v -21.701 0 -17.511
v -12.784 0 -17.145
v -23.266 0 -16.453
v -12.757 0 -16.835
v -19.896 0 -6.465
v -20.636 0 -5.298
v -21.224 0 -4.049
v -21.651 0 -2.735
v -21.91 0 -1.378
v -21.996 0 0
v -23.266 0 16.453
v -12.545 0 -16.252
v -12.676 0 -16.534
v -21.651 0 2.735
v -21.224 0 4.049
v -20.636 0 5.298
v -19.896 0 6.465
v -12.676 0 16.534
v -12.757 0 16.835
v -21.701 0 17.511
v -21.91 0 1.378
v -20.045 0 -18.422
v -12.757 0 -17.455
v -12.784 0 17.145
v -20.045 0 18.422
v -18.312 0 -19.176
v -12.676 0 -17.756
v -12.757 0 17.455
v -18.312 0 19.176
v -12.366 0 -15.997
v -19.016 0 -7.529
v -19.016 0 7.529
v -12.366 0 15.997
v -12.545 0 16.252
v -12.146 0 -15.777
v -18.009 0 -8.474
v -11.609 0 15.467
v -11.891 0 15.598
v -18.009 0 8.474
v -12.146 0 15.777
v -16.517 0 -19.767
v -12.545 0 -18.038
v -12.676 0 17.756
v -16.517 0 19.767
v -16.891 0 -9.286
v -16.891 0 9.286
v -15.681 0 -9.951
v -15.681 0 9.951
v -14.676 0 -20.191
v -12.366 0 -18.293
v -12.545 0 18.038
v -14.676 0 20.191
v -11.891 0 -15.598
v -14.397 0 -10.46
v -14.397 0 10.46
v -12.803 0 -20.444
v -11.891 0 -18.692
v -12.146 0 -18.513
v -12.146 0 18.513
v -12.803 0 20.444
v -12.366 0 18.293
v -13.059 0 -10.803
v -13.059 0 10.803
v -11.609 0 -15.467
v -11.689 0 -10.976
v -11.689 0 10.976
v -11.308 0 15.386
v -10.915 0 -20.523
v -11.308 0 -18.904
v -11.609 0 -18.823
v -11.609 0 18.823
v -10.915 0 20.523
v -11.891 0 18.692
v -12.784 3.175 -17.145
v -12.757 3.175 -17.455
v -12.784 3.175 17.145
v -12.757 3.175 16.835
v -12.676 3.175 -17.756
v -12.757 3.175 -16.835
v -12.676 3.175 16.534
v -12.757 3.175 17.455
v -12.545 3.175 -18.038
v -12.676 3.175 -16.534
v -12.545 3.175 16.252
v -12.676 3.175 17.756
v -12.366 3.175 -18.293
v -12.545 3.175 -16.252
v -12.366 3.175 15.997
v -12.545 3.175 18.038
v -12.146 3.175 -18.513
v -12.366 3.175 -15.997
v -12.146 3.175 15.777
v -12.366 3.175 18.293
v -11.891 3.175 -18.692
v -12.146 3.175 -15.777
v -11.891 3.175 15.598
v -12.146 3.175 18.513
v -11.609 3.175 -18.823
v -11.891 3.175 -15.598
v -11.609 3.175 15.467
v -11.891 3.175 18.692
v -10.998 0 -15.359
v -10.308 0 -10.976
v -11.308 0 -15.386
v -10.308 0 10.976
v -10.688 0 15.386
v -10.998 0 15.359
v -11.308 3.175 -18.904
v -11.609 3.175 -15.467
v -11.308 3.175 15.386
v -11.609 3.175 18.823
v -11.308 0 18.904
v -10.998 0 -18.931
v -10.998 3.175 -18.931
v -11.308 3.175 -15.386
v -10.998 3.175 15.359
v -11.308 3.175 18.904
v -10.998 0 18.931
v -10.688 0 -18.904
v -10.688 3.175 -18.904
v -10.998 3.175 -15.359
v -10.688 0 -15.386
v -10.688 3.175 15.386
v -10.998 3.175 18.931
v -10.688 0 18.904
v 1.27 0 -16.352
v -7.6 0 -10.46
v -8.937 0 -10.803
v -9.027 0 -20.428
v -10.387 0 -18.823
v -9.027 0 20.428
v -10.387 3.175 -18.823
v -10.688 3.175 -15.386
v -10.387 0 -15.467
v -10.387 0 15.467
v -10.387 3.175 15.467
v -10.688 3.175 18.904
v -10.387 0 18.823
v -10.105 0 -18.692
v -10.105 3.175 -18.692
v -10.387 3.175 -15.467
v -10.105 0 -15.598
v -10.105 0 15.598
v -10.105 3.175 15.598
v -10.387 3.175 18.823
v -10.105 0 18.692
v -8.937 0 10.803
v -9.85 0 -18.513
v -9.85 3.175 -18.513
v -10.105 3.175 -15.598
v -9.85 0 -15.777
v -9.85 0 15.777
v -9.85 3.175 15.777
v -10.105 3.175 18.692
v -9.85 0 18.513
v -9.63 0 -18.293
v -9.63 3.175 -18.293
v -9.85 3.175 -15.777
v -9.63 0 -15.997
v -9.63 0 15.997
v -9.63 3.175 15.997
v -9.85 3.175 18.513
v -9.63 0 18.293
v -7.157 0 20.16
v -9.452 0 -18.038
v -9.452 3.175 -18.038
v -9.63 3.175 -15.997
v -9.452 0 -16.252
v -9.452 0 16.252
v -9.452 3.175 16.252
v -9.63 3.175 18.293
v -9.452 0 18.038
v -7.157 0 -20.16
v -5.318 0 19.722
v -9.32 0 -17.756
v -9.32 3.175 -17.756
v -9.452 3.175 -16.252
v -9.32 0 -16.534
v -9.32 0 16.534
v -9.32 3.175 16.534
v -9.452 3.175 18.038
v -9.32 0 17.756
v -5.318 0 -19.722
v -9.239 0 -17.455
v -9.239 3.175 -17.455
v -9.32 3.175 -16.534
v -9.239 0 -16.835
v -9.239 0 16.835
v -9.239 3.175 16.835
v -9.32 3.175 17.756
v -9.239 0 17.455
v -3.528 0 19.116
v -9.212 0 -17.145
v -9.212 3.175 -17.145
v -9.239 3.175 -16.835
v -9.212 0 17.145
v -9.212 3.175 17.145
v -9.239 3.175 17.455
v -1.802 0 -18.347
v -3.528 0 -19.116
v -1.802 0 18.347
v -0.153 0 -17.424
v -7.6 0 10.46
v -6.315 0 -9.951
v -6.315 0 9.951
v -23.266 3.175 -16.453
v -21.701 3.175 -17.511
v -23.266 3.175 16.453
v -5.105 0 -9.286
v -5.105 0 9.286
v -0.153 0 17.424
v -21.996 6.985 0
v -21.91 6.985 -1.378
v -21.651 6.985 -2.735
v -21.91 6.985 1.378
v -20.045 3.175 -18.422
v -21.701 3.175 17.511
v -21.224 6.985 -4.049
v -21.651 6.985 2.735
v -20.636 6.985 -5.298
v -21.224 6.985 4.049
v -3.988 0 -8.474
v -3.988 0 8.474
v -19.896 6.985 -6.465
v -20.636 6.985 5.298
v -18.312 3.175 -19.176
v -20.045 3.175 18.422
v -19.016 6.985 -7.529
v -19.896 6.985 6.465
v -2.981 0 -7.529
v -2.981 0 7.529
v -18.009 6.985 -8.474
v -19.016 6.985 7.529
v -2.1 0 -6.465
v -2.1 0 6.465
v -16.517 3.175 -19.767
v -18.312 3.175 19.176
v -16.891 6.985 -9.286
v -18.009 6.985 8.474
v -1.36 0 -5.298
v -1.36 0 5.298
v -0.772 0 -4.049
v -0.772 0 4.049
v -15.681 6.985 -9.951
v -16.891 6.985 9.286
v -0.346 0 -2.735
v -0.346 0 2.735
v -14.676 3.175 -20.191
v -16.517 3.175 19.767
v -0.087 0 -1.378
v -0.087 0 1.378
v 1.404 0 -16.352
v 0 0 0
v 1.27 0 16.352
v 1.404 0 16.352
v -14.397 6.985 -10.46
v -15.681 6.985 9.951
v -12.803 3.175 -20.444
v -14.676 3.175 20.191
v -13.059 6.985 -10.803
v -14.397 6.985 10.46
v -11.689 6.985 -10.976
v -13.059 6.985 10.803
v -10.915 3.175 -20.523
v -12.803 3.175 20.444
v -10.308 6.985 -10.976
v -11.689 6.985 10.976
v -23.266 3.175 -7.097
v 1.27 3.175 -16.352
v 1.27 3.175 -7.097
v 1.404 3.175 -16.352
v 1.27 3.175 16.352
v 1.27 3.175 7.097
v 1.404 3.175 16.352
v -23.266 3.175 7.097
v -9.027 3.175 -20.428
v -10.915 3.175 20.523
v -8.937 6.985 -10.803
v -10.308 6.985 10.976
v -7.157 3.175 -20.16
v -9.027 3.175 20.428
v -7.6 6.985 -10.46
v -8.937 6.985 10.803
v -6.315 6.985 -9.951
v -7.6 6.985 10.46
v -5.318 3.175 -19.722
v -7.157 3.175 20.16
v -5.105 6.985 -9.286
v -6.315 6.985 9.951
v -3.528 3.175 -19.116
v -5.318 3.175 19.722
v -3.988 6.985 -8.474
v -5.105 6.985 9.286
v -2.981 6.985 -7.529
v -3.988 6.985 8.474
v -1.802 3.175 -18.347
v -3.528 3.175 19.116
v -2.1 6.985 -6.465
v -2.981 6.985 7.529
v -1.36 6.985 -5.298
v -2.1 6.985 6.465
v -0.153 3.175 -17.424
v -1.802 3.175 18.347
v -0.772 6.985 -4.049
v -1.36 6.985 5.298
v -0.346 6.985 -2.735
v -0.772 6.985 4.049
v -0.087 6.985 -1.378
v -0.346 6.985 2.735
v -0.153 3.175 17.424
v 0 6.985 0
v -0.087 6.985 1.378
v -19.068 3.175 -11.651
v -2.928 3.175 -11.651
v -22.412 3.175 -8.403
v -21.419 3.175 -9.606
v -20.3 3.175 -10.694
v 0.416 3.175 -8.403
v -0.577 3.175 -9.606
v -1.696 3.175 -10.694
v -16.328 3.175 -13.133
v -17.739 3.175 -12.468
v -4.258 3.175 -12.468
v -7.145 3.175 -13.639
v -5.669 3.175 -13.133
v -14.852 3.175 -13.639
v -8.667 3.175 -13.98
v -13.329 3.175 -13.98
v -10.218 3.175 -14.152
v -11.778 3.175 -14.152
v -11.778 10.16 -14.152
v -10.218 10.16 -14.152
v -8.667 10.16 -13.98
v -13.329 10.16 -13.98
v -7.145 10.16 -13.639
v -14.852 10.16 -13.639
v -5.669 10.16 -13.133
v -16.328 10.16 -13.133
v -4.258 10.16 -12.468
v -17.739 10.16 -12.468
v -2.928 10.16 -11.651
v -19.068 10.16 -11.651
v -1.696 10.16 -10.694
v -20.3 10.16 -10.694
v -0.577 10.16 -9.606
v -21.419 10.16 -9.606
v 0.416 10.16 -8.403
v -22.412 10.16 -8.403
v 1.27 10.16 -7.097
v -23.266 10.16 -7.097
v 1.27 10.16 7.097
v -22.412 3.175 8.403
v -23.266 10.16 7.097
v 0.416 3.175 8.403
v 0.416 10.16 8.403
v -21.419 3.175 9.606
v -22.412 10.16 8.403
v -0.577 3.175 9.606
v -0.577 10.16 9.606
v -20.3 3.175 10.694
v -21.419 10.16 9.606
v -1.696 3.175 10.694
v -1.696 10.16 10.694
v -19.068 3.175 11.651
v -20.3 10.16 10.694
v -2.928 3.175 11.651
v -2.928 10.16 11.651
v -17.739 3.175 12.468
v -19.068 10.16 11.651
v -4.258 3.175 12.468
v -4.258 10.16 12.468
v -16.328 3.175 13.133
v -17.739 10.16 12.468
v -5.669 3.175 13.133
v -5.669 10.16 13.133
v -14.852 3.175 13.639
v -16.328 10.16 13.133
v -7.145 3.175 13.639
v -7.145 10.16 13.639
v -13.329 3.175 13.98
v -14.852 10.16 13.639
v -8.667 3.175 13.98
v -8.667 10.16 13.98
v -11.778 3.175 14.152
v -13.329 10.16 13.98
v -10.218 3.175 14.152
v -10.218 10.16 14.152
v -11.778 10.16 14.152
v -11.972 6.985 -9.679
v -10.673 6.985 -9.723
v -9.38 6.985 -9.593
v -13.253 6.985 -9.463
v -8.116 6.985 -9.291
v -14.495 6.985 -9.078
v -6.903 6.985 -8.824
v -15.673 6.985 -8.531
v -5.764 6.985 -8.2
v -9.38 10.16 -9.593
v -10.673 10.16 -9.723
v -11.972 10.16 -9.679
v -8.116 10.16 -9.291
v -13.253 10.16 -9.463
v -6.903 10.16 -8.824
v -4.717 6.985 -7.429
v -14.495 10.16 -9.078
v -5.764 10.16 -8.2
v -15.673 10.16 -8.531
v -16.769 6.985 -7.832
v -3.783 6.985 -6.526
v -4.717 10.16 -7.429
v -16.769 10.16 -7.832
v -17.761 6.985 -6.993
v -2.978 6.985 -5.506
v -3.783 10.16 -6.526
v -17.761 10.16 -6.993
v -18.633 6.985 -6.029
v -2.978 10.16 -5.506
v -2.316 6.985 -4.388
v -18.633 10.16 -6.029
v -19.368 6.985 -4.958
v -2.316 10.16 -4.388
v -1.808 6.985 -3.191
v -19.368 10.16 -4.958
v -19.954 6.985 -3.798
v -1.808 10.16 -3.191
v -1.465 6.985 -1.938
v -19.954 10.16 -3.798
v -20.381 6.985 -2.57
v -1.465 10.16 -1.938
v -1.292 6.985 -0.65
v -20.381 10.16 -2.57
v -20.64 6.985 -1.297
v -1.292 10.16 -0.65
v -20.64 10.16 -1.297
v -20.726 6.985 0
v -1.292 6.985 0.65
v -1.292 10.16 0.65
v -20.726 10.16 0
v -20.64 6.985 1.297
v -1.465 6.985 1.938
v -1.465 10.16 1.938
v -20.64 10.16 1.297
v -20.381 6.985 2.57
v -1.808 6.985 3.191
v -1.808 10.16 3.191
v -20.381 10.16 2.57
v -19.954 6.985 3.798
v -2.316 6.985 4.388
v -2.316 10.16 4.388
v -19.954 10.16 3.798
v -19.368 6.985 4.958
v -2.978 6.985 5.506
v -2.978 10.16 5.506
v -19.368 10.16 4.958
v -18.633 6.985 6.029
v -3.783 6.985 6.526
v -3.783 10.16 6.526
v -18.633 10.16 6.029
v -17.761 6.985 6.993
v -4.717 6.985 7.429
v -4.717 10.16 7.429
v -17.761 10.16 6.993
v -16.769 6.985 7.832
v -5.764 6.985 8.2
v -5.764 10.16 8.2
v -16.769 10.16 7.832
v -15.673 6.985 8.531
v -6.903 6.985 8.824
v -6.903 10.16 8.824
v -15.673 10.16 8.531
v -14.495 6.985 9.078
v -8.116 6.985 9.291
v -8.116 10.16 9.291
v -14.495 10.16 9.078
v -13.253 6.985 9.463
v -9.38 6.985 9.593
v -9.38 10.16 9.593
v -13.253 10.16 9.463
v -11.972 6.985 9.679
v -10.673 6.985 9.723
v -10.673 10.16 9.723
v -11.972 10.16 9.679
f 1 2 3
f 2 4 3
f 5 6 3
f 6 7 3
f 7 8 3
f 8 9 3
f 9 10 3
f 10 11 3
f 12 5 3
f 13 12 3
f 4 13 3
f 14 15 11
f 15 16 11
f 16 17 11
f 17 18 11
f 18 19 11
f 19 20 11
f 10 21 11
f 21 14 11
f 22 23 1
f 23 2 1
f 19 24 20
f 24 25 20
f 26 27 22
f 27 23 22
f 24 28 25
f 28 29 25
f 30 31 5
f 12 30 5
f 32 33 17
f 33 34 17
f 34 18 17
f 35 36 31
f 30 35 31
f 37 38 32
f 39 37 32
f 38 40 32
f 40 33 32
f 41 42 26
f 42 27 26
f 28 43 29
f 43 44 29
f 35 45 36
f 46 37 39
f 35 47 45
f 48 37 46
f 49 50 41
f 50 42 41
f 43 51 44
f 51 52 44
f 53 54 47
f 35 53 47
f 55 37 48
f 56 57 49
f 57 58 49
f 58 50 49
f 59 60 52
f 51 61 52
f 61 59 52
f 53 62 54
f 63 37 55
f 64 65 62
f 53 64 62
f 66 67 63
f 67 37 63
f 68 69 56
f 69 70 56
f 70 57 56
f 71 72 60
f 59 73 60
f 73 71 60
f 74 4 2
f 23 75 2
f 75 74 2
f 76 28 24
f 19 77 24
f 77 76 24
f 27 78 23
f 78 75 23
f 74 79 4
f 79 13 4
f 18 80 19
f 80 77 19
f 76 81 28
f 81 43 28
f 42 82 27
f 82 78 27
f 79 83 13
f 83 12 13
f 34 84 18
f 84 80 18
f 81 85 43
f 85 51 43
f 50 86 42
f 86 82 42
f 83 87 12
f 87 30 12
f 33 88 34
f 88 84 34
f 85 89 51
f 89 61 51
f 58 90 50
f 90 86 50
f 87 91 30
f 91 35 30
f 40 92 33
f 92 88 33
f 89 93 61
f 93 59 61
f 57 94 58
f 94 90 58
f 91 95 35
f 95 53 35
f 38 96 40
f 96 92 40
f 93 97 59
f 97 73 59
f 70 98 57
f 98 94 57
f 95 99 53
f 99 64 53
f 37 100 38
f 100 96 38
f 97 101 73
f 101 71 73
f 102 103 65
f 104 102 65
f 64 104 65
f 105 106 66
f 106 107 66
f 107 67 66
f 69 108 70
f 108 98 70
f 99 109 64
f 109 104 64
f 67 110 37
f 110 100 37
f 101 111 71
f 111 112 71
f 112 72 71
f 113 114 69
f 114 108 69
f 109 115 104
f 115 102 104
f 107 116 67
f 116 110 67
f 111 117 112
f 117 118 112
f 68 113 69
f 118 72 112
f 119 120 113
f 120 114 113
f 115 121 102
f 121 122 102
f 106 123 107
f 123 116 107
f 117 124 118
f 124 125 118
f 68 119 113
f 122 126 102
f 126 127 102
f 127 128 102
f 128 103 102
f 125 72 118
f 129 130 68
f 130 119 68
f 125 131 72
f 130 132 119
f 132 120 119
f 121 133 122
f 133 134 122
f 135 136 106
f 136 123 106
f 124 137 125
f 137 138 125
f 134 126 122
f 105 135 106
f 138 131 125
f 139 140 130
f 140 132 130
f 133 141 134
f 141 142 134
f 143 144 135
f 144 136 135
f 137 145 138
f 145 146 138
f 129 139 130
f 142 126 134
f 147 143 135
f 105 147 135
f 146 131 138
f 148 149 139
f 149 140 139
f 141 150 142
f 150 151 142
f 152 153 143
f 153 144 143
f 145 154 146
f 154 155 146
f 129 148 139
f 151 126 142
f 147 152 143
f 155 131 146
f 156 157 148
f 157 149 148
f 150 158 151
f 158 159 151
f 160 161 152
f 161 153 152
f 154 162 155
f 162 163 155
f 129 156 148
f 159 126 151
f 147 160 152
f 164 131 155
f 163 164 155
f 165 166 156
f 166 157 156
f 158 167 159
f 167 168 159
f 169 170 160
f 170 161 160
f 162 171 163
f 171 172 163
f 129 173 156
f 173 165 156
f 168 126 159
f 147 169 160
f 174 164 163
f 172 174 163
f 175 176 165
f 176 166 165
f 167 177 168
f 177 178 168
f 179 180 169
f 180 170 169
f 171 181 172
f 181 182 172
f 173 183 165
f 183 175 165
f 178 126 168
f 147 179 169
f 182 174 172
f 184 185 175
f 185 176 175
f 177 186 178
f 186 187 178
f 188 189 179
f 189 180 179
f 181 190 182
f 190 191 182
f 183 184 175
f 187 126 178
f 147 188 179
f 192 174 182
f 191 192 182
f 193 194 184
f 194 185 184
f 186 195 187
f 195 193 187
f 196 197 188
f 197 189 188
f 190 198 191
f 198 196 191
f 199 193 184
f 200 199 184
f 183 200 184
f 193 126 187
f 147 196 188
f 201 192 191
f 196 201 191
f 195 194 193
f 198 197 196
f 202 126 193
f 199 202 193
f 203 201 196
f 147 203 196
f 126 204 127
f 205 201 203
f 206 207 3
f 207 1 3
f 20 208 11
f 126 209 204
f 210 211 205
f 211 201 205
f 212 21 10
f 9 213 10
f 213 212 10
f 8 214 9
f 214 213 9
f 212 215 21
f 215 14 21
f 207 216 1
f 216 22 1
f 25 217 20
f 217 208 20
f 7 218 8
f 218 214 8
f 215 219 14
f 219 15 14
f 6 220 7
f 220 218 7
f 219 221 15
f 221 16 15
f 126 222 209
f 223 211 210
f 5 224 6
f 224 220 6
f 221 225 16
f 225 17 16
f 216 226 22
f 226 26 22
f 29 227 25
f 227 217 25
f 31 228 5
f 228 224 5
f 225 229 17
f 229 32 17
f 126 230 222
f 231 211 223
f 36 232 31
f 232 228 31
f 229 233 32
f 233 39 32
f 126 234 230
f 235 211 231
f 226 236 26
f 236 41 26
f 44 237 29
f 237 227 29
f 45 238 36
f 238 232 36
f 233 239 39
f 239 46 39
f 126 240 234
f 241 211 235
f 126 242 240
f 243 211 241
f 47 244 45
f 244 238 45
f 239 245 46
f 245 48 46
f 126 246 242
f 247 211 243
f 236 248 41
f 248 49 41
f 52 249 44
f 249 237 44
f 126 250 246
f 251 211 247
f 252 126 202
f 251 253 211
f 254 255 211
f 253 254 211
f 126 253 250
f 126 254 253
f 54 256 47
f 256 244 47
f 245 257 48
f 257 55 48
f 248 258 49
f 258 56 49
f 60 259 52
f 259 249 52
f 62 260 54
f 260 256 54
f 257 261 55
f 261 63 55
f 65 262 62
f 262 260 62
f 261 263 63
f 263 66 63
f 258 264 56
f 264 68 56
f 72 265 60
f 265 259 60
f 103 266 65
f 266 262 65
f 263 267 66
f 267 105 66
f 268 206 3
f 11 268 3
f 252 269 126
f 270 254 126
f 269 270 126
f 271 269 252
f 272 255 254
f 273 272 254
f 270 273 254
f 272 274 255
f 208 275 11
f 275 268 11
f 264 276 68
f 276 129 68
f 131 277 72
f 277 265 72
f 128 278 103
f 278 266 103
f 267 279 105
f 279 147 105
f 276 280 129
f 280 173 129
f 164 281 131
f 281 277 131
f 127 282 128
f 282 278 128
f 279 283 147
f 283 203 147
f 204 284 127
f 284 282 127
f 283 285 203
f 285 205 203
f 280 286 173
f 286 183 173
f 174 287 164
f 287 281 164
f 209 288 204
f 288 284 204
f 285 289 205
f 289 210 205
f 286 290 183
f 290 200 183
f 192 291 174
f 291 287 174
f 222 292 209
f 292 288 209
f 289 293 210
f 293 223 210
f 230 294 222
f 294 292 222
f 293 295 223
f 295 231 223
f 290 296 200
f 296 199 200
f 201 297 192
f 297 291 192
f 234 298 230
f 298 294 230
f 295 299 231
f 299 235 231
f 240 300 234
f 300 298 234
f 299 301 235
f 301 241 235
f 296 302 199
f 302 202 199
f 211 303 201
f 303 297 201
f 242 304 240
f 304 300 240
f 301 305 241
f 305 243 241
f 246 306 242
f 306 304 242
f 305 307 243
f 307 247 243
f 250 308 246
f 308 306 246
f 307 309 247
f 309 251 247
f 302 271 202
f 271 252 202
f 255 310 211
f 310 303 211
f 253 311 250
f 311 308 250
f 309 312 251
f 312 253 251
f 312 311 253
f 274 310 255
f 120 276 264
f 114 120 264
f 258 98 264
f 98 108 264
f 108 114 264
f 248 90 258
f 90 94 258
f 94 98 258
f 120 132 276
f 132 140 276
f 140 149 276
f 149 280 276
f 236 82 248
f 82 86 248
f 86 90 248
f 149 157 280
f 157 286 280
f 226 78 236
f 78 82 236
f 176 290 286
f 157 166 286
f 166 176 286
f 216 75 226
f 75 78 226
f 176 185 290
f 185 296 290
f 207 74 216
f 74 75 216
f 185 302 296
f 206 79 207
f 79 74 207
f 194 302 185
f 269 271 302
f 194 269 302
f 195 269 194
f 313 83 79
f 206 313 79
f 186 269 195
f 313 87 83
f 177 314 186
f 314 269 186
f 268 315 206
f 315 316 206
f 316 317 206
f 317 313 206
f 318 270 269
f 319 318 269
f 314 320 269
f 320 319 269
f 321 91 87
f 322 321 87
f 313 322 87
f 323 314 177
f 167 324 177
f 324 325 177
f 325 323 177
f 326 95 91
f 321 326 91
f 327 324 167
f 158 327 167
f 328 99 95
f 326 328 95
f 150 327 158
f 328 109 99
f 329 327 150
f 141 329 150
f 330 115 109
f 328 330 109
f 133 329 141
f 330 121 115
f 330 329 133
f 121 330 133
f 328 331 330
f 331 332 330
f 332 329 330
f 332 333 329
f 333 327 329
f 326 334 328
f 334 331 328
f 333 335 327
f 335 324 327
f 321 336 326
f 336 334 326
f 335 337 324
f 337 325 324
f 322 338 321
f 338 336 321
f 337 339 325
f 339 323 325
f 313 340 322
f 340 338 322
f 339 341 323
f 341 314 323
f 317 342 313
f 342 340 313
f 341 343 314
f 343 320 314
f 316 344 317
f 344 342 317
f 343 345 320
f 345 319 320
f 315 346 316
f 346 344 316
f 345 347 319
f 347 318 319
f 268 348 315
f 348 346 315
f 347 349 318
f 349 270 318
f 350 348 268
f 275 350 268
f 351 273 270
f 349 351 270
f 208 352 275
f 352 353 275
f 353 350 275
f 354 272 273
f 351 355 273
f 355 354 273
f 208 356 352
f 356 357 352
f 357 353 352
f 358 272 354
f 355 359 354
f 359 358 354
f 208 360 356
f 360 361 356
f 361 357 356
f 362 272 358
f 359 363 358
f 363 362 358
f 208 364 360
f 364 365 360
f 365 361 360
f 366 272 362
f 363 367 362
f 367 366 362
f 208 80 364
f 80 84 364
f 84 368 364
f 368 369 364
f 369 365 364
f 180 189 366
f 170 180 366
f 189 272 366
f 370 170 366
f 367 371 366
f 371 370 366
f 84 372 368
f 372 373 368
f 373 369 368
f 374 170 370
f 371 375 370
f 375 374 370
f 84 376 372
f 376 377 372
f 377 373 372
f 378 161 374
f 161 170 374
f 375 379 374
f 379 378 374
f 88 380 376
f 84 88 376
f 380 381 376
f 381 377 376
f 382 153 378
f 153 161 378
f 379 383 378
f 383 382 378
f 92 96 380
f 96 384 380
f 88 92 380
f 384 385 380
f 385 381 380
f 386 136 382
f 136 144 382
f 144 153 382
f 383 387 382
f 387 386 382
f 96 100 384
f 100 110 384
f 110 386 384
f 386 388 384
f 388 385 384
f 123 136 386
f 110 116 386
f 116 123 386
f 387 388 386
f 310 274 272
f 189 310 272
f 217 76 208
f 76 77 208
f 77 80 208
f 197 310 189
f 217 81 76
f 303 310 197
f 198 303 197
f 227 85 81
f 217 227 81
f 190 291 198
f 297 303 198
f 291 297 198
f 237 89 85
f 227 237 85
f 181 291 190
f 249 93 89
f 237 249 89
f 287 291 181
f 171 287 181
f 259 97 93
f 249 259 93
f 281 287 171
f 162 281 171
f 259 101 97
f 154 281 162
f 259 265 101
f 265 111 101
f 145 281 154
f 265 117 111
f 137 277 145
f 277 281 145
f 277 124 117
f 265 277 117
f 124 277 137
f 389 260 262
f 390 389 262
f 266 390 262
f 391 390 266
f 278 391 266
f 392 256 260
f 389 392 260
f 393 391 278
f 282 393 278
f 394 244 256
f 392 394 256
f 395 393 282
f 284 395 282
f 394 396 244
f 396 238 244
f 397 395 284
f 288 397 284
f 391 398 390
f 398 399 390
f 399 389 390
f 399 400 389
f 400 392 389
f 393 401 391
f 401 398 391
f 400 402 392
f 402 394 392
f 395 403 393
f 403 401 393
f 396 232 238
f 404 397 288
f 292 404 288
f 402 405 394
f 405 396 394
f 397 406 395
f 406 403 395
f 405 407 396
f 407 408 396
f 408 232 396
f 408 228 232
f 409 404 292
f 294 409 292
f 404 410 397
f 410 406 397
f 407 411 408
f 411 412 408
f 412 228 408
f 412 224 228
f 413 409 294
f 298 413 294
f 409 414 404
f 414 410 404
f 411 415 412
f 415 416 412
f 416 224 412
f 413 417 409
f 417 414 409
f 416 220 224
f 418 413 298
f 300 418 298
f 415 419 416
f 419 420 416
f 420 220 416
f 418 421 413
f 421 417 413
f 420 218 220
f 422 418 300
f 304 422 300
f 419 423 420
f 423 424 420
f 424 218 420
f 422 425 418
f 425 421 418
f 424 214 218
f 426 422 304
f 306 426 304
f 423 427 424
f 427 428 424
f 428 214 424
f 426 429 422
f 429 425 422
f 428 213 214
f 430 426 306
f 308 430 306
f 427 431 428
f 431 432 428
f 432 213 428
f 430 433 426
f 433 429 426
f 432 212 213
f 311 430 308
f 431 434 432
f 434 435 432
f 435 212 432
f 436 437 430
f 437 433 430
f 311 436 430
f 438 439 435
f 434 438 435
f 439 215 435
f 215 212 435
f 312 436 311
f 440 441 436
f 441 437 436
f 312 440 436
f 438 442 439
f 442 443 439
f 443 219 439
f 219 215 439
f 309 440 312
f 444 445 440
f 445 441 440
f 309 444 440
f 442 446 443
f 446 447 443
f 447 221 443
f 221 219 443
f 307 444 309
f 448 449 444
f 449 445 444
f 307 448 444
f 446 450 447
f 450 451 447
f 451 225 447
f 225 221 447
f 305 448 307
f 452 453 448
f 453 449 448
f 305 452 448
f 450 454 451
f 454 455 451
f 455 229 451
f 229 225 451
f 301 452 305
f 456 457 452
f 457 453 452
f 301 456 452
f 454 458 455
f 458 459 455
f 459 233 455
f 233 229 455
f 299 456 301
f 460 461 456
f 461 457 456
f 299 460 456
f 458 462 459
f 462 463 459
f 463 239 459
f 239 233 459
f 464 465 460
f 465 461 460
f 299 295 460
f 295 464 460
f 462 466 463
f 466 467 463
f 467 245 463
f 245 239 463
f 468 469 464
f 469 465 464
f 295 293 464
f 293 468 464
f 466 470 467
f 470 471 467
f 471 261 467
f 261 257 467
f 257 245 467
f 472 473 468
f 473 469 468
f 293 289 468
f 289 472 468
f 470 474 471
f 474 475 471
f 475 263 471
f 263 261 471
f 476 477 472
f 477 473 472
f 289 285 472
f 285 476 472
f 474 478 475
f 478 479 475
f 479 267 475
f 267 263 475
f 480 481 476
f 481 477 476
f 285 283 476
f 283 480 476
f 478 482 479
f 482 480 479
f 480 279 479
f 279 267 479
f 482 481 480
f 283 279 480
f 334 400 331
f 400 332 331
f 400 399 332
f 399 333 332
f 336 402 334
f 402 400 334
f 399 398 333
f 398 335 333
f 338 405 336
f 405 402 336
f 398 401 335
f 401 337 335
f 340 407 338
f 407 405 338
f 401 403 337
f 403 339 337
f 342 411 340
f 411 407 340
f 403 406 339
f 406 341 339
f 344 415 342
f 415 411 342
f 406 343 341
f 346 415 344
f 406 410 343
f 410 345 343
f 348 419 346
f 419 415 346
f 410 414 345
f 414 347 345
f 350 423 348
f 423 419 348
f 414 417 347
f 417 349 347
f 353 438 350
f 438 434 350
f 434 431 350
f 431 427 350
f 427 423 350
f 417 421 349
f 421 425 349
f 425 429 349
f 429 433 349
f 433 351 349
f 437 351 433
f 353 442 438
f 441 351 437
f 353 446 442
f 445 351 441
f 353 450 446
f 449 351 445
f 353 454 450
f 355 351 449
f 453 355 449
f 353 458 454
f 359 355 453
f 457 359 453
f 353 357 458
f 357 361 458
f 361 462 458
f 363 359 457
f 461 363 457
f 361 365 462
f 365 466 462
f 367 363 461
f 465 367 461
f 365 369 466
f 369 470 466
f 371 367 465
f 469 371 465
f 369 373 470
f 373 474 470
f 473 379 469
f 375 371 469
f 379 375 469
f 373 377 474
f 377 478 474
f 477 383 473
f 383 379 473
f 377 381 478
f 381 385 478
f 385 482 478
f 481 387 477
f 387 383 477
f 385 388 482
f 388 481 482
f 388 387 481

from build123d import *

# Parameters (mm, degrees)
CUT_EXTRUDE1_REACH = 40.962
SKETCH2_W          = 9.385810436
SKETCH2_H          = 34.336908986
SKETCH2_W_2        = 16.426678561
SKETCH2_H_2        = 32.704594128
CUT_EXTRUDE2_REACH = 33.801
SKETCH3_R          = 1.7859375


with BuildPart() as part:
    # Sketch1 → Revolve2 (revolve)
    with BuildSketch(Plane.XY, mode=Mode.PRIVATE) as revolve2_sk:
        Polygon((0, 0), (9.525, 0), (9.525, 3.175), (3.175, 3.175), (3.175, 10.16), (-1.27, 10.16), (-1.27, 6.985), (0, 6.985), align=None)
    revolve(revolve2_sk.sketch.rotate(Axis((-10.9982, 23.074413867, 0), (0, -1, 0)), 180), axis=Axis((-10.9982, 23.074413867, 0), (0, -1, 0)))

    # Cut-Extrude1: up to this face of the body (flat: up to its plane)
    cut_extrude1_end = Plane(part.part.faces().sort_by_distance((0.580483756, 0, 0))[0])
    # Sketch2 → Cut-Extrude1 (cut, up to the picked face)
    with BuildSketch(Plane(origin=(0, 10.16, 0), x_dir=(1, 0, 0), z_dir=(0, 1, 0)), mode=Mode.PRIVATE) as cut_extrude1_sk1:
        with Locations((-27.959305218, 0)):
            Rectangle(SKETCH2_W, SKETCH2_H)
    cut_extrude1_tool1 = split(extrude(cut_extrude1_sk1.sketch, amount=-CUT_EXTRUDE1_REACH, mode=Mode.PRIVATE), bisect_by=cut_extrude1_end, keep=Keep.BOTH, mode=Mode.PRIVATE)
    # Sketch2 → Cut-Extrude1 (cut, up to the picked face)
    with BuildSketch(Plane(origin=(0, 10.16, 0), x_dir=(1, 0, 0), z_dir=(0, 1, 0)), mode=Mode.PRIVATE) as cut_extrude1_sk2:
        with Locations((9.483339281, 0)):
            Rectangle(SKETCH2_W_2, SKETCH2_H_2)
    cut_extrude1_tool2 = split(extrude(cut_extrude1_sk2.sketch, amount=-CUT_EXTRUDE1_REACH, mode=Mode.PRIVATE), bisect_by=cut_extrude1_end, keep=Keep.BOTH, mode=Mode.PRIVATE)
    add(cut_extrude1_tool1.solids().sort_by(Axis((-27.959305, 10.16, 0), (0, -1, 0)))[0], mode=Mode.SUBTRACT)
    add(cut_extrude1_tool2.solids().sort_by(Axis((9.483339, 10.16, 0), (0, -1, 0)))[0], mode=Mode.SUBTRACT)

    # Sketch3 → Cut-Extrude2 (cut, up to next)
    with BuildSketch(Plane(origin=(0, 3.175, 0), x_dir=(1, 0, 0), z_dir=(0, 1, 0)), mode=Mode.PRIVATE) as cut_extrude2_sk1:
        with Locations(Location((-10.9982, 17.145, 0), (0, 0, 180))):
            Circle(SKETCH3_R)
    cut_extrude2_tool1 = extrude(cut_extrude2_sk1.sketch, amount=-CUT_EXTRUDE2_REACH, mode=Mode.PRIVATE) & part.part
    # Sketch3 → Cut-Extrude2 (cut, up to next)
    with BuildSketch(Plane(origin=(0, 3.175, 0), x_dir=(1, 0, 0), z_dir=(0, 1, 0)), mode=Mode.PRIVATE) as cut_extrude2_sk2:
        with Locations(Location((-10.9982, -17.145, 0), (0, 0, 180))):
            Circle(SKETCH3_R)
    cut_extrude2_tool2 = extrude(cut_extrude2_sk2.sketch, amount=-CUT_EXTRUDE2_REACH, mode=Mode.PRIVATE) & part.part
    add(cut_extrude2_tool1.solids().sort_by_distance((-10.9982, 3.175, -17.145))[0], mode=Mode.SUBTRACT)
    add(cut_extrude2_tool2.solids().sort_by_distance((-10.9982, 3.175, 17.145))[0], mode=Mode.SUBTRACT)


solid = part.part
